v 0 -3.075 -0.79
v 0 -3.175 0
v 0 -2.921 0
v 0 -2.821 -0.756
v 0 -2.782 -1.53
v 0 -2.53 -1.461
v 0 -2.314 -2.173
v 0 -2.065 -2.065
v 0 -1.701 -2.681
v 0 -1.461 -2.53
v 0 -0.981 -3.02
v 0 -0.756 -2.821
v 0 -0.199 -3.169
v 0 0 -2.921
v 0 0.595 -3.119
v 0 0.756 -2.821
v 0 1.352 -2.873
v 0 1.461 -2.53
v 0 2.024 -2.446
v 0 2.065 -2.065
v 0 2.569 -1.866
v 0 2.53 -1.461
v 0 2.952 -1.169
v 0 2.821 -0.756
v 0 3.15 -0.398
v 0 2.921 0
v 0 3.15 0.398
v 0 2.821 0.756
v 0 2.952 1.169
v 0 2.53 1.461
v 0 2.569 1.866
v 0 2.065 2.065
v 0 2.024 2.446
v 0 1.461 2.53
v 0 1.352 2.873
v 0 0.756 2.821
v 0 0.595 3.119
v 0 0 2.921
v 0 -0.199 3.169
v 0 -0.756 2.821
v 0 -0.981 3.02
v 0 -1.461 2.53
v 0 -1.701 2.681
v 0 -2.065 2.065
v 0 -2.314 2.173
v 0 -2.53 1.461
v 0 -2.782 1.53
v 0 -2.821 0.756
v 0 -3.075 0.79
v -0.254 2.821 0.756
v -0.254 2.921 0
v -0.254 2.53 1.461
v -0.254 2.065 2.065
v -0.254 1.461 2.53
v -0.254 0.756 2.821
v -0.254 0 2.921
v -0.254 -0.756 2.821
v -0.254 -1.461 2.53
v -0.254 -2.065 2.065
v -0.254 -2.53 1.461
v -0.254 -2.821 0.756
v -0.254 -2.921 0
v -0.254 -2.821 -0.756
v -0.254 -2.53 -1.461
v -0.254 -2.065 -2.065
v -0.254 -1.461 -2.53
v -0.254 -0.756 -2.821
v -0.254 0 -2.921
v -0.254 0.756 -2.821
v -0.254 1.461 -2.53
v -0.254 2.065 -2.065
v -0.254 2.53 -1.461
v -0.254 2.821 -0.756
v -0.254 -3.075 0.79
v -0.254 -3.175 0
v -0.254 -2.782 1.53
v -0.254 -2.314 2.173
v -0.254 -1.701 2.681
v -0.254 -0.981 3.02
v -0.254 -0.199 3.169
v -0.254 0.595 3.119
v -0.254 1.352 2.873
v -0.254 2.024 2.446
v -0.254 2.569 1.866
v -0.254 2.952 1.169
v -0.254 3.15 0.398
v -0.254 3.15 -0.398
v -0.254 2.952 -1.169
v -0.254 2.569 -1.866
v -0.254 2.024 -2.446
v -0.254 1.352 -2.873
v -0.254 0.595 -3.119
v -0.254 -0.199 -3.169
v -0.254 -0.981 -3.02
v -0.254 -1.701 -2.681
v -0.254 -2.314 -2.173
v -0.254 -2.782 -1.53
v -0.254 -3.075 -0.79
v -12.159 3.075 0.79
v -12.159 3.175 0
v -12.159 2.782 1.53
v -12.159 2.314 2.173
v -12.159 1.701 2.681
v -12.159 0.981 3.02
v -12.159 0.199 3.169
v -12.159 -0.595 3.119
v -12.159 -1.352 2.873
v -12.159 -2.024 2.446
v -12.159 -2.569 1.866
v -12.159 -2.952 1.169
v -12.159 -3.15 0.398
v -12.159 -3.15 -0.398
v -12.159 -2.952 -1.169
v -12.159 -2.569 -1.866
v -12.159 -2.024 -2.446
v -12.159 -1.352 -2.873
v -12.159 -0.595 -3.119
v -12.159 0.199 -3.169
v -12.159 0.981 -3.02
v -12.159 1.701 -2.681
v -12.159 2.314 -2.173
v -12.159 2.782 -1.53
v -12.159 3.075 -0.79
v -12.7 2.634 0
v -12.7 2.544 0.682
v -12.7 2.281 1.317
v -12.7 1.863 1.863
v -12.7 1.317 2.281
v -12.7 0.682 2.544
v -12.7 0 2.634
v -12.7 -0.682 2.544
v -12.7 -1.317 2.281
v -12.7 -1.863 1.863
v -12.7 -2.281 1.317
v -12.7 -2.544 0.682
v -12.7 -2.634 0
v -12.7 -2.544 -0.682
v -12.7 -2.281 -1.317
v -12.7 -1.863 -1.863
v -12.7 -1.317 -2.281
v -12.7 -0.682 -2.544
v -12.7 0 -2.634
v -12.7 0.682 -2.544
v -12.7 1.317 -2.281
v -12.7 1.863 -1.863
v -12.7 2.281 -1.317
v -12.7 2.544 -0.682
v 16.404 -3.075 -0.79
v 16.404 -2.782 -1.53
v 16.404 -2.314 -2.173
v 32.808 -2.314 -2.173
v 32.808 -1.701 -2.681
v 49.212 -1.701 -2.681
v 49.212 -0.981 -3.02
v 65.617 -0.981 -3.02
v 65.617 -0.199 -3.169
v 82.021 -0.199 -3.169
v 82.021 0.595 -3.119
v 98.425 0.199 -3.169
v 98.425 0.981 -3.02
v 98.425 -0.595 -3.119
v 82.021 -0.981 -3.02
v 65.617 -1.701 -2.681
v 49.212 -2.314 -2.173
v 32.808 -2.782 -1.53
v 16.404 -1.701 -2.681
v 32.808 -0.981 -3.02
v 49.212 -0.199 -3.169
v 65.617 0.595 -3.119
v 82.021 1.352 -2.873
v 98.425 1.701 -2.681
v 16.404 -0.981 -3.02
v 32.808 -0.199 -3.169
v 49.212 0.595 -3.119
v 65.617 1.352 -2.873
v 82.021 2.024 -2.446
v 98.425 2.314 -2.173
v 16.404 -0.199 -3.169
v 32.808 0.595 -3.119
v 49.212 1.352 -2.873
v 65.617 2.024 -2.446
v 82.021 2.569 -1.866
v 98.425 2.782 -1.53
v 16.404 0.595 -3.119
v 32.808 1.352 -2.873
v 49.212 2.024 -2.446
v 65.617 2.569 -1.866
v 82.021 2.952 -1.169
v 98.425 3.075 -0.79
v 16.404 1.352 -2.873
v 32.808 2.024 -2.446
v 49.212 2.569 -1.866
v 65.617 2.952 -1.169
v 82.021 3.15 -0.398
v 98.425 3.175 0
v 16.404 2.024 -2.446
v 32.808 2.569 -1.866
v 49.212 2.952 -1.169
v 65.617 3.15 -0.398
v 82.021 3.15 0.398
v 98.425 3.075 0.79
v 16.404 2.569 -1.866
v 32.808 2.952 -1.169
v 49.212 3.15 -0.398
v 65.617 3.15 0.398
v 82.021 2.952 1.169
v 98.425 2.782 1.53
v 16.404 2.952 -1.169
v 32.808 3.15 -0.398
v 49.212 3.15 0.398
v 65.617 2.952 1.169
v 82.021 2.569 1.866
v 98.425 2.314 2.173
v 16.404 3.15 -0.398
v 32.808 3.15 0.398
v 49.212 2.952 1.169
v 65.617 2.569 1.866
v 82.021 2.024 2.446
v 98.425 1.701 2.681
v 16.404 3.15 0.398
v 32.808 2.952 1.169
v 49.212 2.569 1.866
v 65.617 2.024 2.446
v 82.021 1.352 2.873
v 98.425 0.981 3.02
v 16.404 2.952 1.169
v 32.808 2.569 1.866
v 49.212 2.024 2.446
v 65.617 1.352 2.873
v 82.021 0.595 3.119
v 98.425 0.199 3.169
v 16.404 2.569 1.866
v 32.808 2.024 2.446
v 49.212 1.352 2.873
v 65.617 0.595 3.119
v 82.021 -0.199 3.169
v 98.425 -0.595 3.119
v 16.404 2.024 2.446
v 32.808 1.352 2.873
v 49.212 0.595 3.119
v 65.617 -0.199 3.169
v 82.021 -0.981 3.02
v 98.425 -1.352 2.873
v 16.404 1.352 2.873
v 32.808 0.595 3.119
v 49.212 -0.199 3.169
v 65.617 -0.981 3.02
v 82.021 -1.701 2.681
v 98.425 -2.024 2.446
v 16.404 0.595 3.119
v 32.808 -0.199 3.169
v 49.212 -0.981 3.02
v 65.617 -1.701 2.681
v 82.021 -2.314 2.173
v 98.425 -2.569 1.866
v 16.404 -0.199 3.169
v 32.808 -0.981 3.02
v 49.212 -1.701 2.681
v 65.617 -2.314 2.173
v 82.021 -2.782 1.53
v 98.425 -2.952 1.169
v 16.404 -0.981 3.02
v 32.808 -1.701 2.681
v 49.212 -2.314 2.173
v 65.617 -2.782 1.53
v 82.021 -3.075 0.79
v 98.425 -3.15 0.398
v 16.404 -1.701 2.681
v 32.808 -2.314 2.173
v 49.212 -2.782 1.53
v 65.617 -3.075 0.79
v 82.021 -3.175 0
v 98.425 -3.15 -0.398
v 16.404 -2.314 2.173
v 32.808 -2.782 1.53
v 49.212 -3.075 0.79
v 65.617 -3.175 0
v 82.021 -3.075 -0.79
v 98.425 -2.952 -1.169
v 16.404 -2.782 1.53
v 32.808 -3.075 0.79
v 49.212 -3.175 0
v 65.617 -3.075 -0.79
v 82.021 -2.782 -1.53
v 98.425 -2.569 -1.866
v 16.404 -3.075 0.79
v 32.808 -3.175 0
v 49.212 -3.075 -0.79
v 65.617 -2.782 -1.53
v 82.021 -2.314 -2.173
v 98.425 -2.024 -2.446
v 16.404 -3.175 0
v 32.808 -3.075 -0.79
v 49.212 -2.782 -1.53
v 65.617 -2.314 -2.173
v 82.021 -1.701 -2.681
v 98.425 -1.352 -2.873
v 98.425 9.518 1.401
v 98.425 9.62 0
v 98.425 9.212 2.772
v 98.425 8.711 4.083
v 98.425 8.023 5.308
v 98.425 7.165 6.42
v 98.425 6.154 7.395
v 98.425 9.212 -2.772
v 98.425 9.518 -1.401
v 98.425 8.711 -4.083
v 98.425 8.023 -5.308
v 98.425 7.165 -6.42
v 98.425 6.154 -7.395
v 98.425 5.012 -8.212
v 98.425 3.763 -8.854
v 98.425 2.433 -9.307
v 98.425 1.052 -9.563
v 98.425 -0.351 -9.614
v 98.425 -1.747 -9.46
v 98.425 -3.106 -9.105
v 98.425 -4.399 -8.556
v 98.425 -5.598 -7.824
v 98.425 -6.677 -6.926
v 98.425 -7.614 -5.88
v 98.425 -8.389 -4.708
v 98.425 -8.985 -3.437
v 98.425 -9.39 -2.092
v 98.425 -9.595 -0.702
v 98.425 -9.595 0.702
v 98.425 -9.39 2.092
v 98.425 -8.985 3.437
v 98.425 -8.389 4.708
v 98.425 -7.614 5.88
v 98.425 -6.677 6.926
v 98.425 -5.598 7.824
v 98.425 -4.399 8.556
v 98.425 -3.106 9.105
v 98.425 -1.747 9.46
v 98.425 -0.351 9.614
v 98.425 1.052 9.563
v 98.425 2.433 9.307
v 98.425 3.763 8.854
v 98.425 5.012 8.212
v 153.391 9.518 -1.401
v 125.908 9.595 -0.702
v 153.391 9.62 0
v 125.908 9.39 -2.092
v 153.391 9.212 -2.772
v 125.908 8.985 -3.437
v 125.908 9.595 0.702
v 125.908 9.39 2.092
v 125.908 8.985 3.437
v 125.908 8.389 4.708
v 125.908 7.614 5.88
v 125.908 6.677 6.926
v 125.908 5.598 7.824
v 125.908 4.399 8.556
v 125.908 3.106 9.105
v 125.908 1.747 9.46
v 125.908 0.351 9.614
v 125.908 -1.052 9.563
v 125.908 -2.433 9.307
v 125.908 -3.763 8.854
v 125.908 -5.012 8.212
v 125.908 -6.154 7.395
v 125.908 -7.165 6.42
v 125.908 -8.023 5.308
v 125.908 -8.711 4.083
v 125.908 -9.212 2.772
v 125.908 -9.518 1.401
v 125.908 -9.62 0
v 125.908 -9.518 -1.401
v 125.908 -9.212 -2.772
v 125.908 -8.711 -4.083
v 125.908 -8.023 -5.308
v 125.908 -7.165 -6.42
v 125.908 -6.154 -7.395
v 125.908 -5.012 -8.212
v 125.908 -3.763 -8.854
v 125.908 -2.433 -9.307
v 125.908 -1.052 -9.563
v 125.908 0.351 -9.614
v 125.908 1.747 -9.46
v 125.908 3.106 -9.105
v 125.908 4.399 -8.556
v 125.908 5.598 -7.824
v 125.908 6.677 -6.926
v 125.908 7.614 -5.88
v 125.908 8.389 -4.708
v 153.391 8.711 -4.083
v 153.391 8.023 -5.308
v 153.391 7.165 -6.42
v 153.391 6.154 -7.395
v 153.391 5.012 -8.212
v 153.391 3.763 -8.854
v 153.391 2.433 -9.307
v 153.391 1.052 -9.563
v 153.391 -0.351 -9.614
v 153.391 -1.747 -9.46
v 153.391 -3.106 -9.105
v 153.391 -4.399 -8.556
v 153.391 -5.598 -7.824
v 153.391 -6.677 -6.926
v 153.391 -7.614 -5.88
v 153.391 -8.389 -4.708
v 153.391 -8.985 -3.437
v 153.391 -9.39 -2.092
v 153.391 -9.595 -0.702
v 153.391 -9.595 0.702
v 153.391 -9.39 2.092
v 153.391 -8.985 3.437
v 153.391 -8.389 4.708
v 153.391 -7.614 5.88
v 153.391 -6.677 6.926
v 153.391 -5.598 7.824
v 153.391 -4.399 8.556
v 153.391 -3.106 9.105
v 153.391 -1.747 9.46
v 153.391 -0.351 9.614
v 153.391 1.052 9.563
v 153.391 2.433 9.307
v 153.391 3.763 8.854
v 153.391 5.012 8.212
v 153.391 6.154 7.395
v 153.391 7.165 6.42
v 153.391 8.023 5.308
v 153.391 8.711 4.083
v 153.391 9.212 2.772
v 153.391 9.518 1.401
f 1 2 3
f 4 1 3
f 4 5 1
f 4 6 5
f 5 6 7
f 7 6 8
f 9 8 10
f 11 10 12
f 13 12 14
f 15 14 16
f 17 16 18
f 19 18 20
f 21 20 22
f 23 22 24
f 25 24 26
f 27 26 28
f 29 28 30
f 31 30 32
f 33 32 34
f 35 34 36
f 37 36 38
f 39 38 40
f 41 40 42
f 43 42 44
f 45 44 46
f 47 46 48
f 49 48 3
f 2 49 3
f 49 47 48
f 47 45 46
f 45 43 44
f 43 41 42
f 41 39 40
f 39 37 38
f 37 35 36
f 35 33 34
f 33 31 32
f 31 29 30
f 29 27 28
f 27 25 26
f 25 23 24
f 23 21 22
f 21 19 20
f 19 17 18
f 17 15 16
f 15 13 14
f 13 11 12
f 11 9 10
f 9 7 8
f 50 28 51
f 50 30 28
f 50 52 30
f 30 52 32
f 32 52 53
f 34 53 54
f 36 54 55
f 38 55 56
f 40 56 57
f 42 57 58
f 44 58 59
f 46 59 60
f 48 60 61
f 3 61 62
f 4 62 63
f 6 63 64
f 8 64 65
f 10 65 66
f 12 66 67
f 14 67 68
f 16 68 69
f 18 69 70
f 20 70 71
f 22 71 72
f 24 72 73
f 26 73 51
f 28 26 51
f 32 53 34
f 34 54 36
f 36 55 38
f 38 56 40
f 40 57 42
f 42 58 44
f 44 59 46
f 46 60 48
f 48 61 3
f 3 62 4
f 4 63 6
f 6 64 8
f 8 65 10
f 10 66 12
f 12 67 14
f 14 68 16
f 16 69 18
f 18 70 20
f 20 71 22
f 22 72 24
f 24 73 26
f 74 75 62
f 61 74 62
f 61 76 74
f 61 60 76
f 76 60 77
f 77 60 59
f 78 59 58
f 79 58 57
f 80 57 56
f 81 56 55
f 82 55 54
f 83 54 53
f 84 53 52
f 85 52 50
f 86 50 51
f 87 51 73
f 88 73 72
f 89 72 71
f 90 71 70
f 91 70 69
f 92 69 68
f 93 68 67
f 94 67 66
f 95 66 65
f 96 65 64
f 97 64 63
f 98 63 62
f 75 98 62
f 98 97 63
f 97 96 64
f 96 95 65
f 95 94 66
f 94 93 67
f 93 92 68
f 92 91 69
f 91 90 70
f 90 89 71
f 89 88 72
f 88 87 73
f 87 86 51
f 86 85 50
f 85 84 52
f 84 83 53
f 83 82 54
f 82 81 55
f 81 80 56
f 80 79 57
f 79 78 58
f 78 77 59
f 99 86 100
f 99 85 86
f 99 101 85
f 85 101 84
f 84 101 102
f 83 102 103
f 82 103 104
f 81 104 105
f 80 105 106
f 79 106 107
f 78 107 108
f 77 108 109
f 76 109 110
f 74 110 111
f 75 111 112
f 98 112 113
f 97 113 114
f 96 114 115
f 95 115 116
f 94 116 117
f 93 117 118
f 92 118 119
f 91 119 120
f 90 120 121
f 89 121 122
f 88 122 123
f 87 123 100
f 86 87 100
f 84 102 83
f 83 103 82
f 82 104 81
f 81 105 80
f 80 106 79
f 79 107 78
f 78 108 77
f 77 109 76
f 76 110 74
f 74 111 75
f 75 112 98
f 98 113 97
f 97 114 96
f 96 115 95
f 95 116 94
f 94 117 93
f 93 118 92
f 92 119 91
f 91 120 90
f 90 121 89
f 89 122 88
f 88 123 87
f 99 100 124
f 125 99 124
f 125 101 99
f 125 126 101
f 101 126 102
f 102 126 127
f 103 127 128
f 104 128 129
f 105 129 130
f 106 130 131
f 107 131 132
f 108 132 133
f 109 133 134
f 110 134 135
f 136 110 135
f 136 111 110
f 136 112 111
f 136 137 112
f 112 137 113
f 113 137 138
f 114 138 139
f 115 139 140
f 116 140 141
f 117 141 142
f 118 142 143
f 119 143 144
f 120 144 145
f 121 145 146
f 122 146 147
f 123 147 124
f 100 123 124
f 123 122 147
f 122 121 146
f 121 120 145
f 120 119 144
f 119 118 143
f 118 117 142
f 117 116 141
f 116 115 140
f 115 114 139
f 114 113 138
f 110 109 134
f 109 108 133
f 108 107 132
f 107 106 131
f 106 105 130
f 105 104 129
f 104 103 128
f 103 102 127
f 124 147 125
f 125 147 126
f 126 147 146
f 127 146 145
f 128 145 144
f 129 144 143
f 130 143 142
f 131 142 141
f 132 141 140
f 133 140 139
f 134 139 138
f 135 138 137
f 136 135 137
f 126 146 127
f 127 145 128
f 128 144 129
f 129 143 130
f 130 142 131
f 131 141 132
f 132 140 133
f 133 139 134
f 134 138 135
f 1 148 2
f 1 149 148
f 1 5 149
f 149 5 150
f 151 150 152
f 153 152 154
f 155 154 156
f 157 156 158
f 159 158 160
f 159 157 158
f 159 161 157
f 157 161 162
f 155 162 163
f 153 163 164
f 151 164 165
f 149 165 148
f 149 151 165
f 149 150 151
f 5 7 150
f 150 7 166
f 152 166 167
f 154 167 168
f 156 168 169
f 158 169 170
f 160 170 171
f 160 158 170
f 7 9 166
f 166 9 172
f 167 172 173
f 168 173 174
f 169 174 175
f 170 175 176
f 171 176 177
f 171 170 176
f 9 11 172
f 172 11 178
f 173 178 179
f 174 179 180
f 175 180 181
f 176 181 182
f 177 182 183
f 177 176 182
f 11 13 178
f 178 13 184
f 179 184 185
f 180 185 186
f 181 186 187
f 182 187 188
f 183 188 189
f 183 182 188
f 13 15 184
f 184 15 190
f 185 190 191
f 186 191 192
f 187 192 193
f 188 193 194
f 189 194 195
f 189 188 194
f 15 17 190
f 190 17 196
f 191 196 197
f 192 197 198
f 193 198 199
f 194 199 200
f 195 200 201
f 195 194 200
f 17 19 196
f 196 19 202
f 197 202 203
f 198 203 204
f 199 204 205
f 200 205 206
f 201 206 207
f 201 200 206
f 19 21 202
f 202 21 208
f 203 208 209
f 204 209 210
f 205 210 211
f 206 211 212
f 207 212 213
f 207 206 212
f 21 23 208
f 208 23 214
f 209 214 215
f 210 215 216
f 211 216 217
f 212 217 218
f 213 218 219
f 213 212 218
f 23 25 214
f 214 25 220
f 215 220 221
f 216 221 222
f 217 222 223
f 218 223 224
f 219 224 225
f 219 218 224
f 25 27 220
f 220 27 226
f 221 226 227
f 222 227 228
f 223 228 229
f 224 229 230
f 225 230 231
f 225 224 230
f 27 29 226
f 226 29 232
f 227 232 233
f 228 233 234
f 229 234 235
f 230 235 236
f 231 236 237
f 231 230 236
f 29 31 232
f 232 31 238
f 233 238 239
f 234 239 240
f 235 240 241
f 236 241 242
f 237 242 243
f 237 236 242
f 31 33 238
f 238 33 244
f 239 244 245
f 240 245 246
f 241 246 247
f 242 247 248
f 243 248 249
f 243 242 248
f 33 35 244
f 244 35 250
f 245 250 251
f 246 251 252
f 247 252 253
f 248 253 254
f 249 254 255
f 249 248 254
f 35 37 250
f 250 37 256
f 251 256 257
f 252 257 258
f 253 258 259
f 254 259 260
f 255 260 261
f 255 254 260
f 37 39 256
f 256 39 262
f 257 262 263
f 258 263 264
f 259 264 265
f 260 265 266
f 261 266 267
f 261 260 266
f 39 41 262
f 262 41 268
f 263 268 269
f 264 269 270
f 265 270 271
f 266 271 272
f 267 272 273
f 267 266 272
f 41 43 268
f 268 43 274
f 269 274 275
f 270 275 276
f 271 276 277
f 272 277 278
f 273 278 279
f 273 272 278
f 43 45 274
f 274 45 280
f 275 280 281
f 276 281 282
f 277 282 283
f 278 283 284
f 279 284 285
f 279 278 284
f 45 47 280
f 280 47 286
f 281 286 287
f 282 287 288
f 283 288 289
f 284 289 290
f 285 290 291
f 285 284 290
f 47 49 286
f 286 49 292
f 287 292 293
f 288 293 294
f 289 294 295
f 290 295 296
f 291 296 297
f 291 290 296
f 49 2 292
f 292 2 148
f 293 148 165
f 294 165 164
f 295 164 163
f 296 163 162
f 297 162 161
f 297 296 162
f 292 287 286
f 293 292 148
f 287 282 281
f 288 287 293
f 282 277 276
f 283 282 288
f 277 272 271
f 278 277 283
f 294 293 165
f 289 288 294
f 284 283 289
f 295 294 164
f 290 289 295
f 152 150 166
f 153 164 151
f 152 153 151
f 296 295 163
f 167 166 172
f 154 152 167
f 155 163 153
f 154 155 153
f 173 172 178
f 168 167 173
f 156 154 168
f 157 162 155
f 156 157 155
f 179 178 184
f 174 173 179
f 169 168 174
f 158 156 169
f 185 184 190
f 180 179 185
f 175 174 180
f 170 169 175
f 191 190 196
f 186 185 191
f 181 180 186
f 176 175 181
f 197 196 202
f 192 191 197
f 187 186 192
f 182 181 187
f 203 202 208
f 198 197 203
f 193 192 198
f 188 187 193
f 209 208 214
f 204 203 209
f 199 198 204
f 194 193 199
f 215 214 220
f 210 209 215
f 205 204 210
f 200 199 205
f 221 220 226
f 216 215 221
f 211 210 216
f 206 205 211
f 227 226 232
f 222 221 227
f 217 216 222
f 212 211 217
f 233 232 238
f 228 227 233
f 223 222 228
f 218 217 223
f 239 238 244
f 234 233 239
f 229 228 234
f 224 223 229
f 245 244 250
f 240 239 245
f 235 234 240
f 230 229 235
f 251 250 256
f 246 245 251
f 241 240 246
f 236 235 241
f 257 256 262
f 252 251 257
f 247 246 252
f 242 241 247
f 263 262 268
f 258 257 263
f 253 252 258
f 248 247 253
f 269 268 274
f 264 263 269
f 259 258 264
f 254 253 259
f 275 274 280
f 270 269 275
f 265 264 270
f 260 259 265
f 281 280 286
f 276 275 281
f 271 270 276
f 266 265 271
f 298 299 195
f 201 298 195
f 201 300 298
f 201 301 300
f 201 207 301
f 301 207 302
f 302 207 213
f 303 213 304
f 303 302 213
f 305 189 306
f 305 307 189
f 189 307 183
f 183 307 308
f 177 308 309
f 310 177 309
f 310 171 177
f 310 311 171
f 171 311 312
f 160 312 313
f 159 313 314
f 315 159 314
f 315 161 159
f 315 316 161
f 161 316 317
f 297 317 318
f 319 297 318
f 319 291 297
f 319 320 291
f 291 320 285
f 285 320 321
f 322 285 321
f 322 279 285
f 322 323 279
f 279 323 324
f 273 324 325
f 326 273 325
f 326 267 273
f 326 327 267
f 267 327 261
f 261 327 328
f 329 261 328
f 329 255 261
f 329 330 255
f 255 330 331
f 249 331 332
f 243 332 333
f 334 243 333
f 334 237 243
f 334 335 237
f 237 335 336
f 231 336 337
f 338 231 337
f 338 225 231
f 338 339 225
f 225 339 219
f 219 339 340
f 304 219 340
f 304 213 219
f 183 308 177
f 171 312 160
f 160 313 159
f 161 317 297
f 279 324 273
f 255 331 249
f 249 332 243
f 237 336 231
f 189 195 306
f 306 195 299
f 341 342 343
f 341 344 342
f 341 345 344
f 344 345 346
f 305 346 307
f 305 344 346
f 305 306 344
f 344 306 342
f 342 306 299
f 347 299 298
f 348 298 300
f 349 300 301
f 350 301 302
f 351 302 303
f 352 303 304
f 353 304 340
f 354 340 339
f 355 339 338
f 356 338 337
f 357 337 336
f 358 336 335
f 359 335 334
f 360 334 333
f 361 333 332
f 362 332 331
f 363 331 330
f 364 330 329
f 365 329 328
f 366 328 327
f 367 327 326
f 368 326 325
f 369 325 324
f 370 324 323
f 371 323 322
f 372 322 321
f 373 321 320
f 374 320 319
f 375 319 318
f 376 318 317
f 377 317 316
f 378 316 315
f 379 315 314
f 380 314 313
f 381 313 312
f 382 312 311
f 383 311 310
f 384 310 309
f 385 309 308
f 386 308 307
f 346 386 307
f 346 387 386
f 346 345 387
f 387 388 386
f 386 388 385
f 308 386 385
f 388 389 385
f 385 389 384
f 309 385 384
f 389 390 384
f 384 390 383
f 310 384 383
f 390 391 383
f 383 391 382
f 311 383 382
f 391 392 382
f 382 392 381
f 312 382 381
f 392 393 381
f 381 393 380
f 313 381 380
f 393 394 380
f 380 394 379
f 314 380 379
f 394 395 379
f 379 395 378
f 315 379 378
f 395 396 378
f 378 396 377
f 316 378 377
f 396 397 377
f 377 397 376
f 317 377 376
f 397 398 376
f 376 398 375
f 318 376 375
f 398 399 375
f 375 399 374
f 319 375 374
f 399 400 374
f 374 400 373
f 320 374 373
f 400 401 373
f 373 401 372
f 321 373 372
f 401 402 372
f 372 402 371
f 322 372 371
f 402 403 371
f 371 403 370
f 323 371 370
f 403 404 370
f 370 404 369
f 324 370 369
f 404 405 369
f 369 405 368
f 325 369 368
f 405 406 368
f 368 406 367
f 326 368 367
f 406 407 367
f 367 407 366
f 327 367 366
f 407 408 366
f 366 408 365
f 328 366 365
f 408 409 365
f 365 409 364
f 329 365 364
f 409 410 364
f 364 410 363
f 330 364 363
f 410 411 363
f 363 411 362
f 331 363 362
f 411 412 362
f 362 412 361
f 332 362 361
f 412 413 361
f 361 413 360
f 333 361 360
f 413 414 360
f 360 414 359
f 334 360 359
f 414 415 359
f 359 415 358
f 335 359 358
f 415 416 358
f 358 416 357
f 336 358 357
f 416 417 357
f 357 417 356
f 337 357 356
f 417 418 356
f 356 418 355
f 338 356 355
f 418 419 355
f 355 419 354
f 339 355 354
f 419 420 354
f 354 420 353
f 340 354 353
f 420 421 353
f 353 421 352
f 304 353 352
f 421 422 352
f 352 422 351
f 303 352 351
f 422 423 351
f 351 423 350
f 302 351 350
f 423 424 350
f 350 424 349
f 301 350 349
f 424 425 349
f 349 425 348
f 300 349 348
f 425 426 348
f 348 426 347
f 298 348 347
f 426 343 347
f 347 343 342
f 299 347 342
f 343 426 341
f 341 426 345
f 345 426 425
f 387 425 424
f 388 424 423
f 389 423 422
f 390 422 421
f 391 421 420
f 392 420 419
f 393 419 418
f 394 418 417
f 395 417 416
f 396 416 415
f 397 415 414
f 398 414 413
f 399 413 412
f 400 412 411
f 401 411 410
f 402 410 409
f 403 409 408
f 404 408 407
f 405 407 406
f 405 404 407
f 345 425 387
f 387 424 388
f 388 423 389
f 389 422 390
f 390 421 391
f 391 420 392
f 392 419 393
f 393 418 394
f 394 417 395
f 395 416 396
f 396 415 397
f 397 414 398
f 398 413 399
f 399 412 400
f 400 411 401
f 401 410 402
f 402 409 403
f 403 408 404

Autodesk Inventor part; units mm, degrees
sketch "Sketch_1" plane through (0, 0, 0) normal (0, 0, 1) x (1, 0, 0)
  line L0 (153.3906, 0) -> (0, 0)
  line L1 (0, 0) -> (0, 3.175)
  line L2 (0, 3.175) -> (98.425, 3.175)
  line L3 (98.425, 3.175) -> (98.425, 9.6203)
  line L4 (98.425, 9.6203) -> (153.3906, 9.6203)
  line L5 (153.3906, 9.6203) -> (153.3906, 0)
  line L6 (153.3906, 0) -> (0, 0)
revolve "Revolution1" add sketch "Sketch_1" angle 360 about axis through (153.3906, 0, 0) along (1, 0, 0)
sketch "Sketch_3" plane through (0, 0, 0) normal (0, 0, 1) x (1, 0, 0)
  line L0 (0, 0) -> (-12.7, 0)
  line L1 (-12.7, 0) -> (-12.7, 2.634)
  line L2 (-12.7, 2.634) -> (-12.159, 3.175)
  line L3 (-12.159, 3.175) -> (0, 3.175)
  line L4 (0, 3.175) -> (0, 0)
  line L5 (0, 0) -> (-12.7, 0)
revolve "Revolution2" add sketch "Sketch_3" angle 360 about axis through (0, 0, 0) along (1, 0, 0)
sketch "Sketch_30" plane through (0, 0, 0) normal (0, 0, 1) x (1, 0, 0)
  line L0 (0, 0) -> (-0.254, 0)
  line L1 (-0.254, 3.429) -> (-0.254, 2.921)
  line L2 (-0.254, 2.921) -> (0, 2.921)
  line L3 (0, 2.921) -> (0, 3.429)
  line L4 (0, 3.429) -> (-0.254, 3.429)
revolve "Revolution3" cut sketch "Sketch_30" angle 360 about axis through (0, 0, 0) along (1, 0, 0)
ref_plane "rod_cp_XY" through (0, 0, 0) normal (1, 0, 0) x (0, 0, -1)
ref_plane "rod_cp_YZ" through (0, 0, 0) normal (0, 0, -1) x (0, 1, 0)
ref_plane "rod_cp_ZX" through (0, 0, 0) normal (0, 1, 0) x (1, 0, 0)
ref_plane "to_rod_clevis_XY" through (-12.7, 0, 0) normal (1, 0, 0) x (0, 0, -1)
ref_plane "to_rod_clevis_YZ" through (-12.7, 0, 0) normal (0, 0, -1) x (0, 1, 0)
ref_plane "to_rod_clevis_ZX" through (-12.7, 0, 0) normal (0, 1, 0) x (1, 0, 0)
ref_plane "rl2_XY" through (0, 0, 0) normal (1, 0, 0) x (0, 0, -1)
ref_plane "rl2_YZ" through (0, 0, 0) normal (0, 0, -1) x (0, 1, 0)
ref_plane "rl2_ZX" through (0, 0, 0) normal (0, 1, 0) x (1, 0, 0)
ref_plane "rl1_XY" through (-12.7, 0, 0) normal (1, 0, 0) x (0, 0, -1)
ref_plane "rl1_YZ" through (-12.7, 0, 0) normal (0, 0, -1) x (0, 1, 0)
ref_plane "rl1_ZX" through (-12.7, 0, 0) normal (0, 1, 0) x (1, 0, 0)
ref_plane "thd1_XY" through (-12.7, 3.175, 0) normal (1, 0, 0) x (0, 0, -1)
ref_plane "thd1_YZ" through (-12.7, 3.175, 0) normal (0, 0, -1) x (0, 1, 0)
ref_plane "thd1_ZX" through (-12.7, 3.175, 0) normal (0, 1, 0) x (1, 0, 0)
ref_plane "thd2_XY" through (-12.7, -3.175, 0) normal (1, 0, 0) x (0, 0, -1)
ref_plane "thd2_YZ" through (-12.7, -3.175, 0) normal (0, 0, -1) x (0, 1, 0)
ref_plane "thd2_ZX" through (-12.7, -3.175, 0) normal (0, 1, 0) x (1, 0, 0)
ref_plane "dia1_XY" through (0, 3.175, 0) normal (1, 0, 0) x (0, 0, -1)
ref_plane "dia1_YZ" through (0, 3.175, 0) normal (0, 0, -1) x (0, 1, 0)
ref_plane "dia1_ZX" through (0, 3.175, 0) normal (0, 1, 0) x (1, 0, 0)
ref_plane "dia2_XY" through (0, -3.175, 0) normal (1, 0, 0) x (0, 0, -1)
ref_plane "dia2_YZ" through (0, -3.175, 0) normal (0, 0, -1) x (0, 1, 0)
ref_plane "dia2_ZX" through (0, -3.175, 0) normal (0, 1, 0) x (1, 0, 0)
ref_plane "dia12_XY" through (0, 0, 10.2235) normal (1, 0, 0) x (0, 0, -1)
ref_plane "dia12_YZ" through (0, 0, 10.2235) normal (0, 0, -1) x (0, 1, 0)
ref_plane "dia12_ZX" through (0, 0, 10.2235) normal (0, 1, 0) x (1, 0, 0)
ref_plane "dia22_XY" through (0, 0, -10.2235) normal (1, 0, 0) x (0, 0, -1)
ref_plane "dia22_YZ" through (0, 0, -10.2235) normal (0, 0, -1) x (0, 1, 0)
ref_plane "dia22_ZX" through (0, 0, -10.2235) normal (0, 1, 0) x (1, 0, 0)
properties part number "0430_rod"
